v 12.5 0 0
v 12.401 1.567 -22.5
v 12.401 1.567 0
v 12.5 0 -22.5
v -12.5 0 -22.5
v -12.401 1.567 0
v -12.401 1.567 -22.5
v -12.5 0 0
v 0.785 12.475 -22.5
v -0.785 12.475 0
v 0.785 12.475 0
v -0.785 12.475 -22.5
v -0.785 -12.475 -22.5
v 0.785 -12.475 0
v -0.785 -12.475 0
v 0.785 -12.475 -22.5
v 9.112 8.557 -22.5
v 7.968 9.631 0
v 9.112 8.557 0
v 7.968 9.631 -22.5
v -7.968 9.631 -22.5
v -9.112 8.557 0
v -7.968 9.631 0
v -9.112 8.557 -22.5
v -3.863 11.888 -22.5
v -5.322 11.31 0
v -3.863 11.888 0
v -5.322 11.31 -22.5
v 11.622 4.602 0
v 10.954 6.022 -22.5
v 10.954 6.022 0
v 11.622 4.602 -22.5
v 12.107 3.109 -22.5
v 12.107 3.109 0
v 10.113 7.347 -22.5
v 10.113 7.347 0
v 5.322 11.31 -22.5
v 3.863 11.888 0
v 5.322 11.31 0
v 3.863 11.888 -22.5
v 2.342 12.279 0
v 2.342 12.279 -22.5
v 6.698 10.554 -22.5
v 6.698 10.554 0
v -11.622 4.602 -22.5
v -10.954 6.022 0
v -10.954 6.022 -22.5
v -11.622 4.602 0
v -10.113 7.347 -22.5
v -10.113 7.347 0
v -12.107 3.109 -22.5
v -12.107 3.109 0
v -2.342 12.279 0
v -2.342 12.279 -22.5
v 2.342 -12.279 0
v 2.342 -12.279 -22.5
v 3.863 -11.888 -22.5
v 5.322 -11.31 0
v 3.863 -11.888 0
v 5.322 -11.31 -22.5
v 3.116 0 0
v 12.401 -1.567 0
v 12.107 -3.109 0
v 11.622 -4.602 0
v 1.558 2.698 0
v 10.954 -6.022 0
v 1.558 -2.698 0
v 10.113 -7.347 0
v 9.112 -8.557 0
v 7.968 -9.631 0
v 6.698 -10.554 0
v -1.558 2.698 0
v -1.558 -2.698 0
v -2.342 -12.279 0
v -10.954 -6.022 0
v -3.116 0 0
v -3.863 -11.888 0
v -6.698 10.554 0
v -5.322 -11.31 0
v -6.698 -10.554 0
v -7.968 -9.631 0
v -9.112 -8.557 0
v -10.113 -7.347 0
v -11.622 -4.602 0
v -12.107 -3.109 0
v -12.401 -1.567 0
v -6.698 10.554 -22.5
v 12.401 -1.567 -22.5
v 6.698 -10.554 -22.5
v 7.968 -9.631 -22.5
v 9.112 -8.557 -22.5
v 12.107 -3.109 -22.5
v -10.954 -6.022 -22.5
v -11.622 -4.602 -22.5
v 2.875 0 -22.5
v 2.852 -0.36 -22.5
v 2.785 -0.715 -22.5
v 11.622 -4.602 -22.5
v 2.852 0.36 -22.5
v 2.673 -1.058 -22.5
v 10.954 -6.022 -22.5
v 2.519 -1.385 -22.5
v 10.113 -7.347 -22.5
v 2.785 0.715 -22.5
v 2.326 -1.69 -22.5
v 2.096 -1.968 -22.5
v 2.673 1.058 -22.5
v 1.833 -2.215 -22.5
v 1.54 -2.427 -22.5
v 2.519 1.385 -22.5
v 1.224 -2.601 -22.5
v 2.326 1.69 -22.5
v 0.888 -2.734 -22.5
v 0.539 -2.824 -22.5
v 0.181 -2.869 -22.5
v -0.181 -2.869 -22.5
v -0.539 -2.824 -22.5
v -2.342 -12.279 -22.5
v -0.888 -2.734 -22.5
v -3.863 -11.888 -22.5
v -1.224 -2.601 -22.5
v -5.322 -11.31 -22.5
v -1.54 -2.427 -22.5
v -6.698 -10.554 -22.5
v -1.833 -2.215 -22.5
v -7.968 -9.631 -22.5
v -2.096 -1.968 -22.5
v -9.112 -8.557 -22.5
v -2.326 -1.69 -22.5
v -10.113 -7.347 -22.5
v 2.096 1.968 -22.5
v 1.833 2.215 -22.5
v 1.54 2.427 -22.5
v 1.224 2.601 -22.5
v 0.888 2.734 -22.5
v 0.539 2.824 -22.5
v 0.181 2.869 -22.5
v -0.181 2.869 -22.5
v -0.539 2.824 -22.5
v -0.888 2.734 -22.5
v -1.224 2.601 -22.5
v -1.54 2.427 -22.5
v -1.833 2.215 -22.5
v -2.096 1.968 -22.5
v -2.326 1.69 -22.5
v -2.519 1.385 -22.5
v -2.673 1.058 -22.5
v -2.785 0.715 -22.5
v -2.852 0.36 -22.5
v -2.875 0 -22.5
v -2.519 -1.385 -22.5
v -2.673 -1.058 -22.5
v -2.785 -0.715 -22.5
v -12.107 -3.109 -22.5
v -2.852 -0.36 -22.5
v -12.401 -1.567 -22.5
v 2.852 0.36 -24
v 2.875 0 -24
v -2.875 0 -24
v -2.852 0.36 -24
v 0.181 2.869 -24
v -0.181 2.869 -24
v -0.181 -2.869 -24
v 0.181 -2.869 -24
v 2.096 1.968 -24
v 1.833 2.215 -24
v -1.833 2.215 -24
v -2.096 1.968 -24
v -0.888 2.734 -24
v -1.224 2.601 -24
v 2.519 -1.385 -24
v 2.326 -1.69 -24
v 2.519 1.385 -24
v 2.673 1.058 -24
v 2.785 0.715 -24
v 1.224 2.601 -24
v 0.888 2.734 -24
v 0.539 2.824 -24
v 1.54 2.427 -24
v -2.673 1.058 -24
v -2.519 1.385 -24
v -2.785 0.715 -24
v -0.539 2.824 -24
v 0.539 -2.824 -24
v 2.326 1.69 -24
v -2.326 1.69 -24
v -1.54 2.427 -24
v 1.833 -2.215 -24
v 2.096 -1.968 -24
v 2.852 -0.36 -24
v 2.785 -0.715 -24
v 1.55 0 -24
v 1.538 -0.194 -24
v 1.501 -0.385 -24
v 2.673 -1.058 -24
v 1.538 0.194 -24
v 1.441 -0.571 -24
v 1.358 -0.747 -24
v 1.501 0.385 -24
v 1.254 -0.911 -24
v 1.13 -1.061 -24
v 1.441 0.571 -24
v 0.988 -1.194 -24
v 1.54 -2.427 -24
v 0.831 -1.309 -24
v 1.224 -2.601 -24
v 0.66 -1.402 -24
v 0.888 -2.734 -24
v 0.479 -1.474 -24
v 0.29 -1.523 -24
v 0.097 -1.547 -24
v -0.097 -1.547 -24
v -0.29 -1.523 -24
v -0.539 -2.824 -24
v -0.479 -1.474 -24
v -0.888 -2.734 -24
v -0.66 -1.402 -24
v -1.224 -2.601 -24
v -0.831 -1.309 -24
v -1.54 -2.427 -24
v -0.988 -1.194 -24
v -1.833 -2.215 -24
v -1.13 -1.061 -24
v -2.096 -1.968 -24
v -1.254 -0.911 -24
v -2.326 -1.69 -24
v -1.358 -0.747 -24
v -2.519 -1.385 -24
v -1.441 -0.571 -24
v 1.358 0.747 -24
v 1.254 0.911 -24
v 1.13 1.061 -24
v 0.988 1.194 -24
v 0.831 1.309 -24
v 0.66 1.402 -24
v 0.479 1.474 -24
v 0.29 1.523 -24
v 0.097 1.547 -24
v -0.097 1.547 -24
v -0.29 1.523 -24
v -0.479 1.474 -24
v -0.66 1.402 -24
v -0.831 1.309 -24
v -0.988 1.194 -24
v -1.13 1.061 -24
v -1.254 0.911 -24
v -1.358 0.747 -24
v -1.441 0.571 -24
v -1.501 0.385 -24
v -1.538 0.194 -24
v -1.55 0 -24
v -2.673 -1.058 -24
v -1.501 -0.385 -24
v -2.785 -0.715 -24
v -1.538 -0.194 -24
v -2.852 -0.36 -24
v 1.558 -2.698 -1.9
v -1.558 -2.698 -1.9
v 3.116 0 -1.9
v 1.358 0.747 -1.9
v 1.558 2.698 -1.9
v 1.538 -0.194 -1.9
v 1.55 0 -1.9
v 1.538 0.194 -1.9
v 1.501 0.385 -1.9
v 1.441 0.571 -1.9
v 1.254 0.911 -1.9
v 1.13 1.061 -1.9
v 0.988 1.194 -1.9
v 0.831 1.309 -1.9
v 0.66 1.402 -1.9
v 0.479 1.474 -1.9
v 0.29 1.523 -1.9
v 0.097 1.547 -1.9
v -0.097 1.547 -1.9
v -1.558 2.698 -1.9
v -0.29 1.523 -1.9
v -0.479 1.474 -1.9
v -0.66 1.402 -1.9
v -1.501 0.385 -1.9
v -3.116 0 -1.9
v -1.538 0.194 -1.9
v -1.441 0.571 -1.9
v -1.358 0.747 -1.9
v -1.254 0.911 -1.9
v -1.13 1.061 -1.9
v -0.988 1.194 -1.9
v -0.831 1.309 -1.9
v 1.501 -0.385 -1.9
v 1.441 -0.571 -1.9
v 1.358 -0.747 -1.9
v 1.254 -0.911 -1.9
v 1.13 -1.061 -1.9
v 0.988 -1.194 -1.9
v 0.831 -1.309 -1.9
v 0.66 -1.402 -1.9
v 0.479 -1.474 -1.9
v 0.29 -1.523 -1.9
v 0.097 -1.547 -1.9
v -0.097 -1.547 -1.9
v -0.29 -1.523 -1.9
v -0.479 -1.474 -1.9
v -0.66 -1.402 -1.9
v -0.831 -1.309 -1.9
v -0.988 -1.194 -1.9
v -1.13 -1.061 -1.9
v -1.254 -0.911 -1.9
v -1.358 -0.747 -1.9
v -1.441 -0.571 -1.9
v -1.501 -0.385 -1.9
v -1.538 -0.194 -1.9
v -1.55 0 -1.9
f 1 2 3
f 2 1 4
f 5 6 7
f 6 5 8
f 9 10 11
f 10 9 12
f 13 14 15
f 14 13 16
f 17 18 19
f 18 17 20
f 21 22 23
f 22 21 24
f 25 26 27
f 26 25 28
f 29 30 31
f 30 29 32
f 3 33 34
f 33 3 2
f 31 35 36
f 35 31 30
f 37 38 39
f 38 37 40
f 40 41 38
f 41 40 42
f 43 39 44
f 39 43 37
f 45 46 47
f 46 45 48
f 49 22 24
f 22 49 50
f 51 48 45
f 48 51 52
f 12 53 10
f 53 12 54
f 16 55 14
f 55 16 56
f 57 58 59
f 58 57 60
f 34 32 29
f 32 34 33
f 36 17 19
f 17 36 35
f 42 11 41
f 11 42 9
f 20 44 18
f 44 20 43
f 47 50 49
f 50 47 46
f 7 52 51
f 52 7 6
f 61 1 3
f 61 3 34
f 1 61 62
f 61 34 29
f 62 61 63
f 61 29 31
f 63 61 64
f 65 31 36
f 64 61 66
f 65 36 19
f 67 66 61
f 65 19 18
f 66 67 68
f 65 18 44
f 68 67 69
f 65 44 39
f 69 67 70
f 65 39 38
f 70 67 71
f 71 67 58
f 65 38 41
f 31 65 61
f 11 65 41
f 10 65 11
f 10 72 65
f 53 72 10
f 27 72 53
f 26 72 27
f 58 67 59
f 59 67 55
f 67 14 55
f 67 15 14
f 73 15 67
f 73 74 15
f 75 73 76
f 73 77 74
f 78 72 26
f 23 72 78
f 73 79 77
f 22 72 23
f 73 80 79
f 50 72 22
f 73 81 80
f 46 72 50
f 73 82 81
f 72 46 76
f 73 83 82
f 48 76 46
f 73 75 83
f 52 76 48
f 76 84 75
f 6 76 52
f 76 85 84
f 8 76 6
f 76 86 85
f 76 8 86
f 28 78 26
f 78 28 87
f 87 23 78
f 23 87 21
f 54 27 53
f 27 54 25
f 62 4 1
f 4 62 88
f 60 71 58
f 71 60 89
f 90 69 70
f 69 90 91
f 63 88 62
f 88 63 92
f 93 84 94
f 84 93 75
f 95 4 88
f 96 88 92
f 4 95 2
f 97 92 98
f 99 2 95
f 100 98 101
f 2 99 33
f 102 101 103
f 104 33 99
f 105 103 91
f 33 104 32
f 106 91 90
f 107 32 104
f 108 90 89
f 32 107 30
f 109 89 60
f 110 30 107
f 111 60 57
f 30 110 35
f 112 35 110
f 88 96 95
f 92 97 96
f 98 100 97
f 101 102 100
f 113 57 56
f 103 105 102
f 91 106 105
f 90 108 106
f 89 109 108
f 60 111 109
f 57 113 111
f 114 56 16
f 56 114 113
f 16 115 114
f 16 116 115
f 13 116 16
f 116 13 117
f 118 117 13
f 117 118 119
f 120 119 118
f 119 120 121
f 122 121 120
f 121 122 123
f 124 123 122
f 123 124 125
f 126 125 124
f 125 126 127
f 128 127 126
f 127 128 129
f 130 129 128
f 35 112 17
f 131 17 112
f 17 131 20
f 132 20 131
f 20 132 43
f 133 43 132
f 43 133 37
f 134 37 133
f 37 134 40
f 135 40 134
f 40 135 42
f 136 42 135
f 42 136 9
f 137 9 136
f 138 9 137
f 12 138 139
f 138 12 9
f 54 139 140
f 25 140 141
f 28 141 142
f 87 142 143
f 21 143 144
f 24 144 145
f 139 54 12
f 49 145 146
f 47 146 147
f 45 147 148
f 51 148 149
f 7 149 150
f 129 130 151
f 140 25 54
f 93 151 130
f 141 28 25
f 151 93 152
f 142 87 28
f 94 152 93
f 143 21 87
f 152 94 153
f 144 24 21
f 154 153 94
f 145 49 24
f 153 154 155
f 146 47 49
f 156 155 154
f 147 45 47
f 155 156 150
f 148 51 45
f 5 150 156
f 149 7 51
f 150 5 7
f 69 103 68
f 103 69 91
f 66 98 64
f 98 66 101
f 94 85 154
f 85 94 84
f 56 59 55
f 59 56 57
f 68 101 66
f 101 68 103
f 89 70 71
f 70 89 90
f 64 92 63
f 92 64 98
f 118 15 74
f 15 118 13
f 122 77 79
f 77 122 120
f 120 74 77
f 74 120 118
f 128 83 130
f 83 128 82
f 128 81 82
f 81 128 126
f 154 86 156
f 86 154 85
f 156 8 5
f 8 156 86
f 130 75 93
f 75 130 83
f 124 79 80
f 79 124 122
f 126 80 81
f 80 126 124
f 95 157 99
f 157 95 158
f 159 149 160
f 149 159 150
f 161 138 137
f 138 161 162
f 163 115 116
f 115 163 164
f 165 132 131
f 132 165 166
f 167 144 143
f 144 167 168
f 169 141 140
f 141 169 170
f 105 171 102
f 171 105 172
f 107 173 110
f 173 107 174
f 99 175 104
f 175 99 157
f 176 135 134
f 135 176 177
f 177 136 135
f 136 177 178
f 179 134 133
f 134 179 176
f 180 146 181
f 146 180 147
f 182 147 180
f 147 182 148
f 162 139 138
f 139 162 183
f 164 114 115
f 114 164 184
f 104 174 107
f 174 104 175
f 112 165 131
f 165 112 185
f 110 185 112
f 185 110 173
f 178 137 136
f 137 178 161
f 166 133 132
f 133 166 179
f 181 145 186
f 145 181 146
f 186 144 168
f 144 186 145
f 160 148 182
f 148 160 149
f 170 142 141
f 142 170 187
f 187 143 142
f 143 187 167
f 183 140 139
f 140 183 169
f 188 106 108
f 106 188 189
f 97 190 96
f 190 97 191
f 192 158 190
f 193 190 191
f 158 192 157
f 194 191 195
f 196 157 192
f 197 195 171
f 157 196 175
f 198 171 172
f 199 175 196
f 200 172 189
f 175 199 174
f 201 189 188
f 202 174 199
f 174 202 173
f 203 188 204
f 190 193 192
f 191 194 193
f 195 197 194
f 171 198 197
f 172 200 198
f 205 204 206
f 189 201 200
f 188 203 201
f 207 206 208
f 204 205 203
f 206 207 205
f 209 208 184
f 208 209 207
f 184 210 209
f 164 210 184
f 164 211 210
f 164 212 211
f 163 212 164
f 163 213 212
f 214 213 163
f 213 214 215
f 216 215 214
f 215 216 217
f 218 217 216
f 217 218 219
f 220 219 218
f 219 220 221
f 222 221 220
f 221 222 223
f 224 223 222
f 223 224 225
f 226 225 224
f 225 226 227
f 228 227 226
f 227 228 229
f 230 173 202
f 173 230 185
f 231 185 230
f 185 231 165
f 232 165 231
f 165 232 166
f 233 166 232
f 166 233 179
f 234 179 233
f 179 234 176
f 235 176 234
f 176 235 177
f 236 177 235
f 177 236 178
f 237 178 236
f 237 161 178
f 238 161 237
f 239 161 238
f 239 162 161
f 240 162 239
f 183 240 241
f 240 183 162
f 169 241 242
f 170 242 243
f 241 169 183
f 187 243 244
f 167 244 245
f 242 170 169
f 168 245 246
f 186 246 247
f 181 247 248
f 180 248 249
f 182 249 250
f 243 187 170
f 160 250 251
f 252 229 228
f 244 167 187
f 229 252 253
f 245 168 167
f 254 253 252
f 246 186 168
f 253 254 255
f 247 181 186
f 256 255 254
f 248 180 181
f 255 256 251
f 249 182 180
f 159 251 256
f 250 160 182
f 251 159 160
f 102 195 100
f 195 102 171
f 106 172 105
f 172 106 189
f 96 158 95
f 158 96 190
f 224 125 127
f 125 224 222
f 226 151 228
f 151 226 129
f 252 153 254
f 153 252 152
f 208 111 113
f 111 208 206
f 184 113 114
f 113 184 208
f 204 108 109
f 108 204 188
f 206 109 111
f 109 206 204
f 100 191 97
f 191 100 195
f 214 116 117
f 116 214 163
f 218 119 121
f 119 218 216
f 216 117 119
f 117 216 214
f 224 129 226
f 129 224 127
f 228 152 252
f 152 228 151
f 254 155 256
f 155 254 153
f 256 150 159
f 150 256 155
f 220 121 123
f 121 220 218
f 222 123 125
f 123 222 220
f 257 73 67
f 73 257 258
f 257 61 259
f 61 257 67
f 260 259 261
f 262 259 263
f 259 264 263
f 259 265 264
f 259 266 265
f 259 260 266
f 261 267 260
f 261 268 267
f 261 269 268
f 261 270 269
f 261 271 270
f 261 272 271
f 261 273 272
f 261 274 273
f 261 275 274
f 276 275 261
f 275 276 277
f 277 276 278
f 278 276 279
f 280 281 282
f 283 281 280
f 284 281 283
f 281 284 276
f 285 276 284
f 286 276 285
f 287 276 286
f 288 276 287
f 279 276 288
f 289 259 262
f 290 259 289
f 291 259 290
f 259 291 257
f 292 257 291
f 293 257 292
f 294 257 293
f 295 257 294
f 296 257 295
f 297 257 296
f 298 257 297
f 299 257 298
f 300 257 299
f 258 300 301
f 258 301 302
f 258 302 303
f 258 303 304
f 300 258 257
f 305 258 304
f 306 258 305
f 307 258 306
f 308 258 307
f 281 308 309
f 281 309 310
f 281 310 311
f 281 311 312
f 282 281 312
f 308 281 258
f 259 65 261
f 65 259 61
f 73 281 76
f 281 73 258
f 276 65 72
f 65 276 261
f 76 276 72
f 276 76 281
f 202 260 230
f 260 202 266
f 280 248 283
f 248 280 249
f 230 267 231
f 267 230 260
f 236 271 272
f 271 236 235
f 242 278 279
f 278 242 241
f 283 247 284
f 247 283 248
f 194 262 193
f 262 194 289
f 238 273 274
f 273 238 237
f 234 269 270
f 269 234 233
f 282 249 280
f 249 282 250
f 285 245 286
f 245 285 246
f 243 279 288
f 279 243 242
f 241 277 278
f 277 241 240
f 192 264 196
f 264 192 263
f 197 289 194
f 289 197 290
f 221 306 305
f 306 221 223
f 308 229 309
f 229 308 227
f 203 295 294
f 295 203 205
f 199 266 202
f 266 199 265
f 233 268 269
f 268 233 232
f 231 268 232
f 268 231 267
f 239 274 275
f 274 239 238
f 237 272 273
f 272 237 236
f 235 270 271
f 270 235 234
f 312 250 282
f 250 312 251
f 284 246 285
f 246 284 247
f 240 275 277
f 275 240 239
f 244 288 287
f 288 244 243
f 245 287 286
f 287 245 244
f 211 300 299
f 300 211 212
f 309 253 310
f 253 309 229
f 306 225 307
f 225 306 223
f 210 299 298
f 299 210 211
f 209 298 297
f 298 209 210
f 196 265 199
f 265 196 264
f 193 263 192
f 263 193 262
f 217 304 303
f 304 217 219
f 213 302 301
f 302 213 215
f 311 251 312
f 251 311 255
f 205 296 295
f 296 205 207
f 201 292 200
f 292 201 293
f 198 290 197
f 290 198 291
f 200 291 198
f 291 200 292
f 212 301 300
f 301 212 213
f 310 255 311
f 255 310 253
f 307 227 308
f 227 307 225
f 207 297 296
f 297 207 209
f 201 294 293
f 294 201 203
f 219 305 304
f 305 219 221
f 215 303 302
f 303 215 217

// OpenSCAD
$fn = 50;

difference() {
	union() {
		translate(v = [0, 0, -22.5]) {
			cylinder(h = 22.5, r = 12.5);
		}
		#translate(v = [0, 0, -24.0]) {
			cylinder(h = 24, r = 2.875);
		}
	}
	union() {
		translate(v = [0, 0, 0]) {
			rotate(a = [0, 0, 0]) {
				difference() {
					union() {
						translate(v = [0, 0, -1.9]) {
							linear_extrude(height = 1.9) {
								polygon(points = [[3.1158, 0.0], [1.5579000000000005, 2.698361953111554], [-1.5578999999999994, 2.6983619531115544], [-3.1158, 3.815754496783323e-16], [-1.5579000000000014, -2.6983619531115535], [1.557899999999998, -2.6983619531115552]]);
							}
						}
					}
					union();
				}
			}
		}
		#translate(v = [0, 0, -100.0]) {
			cylinder(h = 200, r = 1.55);
		}
	}
}
